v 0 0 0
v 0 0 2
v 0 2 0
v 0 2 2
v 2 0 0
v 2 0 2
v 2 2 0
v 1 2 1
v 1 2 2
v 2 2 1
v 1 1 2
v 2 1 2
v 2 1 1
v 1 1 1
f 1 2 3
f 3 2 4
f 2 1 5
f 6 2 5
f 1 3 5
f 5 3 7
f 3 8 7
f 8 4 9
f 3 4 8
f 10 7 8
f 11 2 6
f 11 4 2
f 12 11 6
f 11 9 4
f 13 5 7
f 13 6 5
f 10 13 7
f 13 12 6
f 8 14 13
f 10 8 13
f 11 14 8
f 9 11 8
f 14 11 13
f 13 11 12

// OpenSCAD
union () { 
translate([0.000010,0,0]) cube([1,1,2]);
translate([0.000010,1,0]) cube([1,1,2]);
translate([1.000010,0,0]) cube([1,1,2]);
translate([1.000010,1,0]) cube([1,1,1]);
}
